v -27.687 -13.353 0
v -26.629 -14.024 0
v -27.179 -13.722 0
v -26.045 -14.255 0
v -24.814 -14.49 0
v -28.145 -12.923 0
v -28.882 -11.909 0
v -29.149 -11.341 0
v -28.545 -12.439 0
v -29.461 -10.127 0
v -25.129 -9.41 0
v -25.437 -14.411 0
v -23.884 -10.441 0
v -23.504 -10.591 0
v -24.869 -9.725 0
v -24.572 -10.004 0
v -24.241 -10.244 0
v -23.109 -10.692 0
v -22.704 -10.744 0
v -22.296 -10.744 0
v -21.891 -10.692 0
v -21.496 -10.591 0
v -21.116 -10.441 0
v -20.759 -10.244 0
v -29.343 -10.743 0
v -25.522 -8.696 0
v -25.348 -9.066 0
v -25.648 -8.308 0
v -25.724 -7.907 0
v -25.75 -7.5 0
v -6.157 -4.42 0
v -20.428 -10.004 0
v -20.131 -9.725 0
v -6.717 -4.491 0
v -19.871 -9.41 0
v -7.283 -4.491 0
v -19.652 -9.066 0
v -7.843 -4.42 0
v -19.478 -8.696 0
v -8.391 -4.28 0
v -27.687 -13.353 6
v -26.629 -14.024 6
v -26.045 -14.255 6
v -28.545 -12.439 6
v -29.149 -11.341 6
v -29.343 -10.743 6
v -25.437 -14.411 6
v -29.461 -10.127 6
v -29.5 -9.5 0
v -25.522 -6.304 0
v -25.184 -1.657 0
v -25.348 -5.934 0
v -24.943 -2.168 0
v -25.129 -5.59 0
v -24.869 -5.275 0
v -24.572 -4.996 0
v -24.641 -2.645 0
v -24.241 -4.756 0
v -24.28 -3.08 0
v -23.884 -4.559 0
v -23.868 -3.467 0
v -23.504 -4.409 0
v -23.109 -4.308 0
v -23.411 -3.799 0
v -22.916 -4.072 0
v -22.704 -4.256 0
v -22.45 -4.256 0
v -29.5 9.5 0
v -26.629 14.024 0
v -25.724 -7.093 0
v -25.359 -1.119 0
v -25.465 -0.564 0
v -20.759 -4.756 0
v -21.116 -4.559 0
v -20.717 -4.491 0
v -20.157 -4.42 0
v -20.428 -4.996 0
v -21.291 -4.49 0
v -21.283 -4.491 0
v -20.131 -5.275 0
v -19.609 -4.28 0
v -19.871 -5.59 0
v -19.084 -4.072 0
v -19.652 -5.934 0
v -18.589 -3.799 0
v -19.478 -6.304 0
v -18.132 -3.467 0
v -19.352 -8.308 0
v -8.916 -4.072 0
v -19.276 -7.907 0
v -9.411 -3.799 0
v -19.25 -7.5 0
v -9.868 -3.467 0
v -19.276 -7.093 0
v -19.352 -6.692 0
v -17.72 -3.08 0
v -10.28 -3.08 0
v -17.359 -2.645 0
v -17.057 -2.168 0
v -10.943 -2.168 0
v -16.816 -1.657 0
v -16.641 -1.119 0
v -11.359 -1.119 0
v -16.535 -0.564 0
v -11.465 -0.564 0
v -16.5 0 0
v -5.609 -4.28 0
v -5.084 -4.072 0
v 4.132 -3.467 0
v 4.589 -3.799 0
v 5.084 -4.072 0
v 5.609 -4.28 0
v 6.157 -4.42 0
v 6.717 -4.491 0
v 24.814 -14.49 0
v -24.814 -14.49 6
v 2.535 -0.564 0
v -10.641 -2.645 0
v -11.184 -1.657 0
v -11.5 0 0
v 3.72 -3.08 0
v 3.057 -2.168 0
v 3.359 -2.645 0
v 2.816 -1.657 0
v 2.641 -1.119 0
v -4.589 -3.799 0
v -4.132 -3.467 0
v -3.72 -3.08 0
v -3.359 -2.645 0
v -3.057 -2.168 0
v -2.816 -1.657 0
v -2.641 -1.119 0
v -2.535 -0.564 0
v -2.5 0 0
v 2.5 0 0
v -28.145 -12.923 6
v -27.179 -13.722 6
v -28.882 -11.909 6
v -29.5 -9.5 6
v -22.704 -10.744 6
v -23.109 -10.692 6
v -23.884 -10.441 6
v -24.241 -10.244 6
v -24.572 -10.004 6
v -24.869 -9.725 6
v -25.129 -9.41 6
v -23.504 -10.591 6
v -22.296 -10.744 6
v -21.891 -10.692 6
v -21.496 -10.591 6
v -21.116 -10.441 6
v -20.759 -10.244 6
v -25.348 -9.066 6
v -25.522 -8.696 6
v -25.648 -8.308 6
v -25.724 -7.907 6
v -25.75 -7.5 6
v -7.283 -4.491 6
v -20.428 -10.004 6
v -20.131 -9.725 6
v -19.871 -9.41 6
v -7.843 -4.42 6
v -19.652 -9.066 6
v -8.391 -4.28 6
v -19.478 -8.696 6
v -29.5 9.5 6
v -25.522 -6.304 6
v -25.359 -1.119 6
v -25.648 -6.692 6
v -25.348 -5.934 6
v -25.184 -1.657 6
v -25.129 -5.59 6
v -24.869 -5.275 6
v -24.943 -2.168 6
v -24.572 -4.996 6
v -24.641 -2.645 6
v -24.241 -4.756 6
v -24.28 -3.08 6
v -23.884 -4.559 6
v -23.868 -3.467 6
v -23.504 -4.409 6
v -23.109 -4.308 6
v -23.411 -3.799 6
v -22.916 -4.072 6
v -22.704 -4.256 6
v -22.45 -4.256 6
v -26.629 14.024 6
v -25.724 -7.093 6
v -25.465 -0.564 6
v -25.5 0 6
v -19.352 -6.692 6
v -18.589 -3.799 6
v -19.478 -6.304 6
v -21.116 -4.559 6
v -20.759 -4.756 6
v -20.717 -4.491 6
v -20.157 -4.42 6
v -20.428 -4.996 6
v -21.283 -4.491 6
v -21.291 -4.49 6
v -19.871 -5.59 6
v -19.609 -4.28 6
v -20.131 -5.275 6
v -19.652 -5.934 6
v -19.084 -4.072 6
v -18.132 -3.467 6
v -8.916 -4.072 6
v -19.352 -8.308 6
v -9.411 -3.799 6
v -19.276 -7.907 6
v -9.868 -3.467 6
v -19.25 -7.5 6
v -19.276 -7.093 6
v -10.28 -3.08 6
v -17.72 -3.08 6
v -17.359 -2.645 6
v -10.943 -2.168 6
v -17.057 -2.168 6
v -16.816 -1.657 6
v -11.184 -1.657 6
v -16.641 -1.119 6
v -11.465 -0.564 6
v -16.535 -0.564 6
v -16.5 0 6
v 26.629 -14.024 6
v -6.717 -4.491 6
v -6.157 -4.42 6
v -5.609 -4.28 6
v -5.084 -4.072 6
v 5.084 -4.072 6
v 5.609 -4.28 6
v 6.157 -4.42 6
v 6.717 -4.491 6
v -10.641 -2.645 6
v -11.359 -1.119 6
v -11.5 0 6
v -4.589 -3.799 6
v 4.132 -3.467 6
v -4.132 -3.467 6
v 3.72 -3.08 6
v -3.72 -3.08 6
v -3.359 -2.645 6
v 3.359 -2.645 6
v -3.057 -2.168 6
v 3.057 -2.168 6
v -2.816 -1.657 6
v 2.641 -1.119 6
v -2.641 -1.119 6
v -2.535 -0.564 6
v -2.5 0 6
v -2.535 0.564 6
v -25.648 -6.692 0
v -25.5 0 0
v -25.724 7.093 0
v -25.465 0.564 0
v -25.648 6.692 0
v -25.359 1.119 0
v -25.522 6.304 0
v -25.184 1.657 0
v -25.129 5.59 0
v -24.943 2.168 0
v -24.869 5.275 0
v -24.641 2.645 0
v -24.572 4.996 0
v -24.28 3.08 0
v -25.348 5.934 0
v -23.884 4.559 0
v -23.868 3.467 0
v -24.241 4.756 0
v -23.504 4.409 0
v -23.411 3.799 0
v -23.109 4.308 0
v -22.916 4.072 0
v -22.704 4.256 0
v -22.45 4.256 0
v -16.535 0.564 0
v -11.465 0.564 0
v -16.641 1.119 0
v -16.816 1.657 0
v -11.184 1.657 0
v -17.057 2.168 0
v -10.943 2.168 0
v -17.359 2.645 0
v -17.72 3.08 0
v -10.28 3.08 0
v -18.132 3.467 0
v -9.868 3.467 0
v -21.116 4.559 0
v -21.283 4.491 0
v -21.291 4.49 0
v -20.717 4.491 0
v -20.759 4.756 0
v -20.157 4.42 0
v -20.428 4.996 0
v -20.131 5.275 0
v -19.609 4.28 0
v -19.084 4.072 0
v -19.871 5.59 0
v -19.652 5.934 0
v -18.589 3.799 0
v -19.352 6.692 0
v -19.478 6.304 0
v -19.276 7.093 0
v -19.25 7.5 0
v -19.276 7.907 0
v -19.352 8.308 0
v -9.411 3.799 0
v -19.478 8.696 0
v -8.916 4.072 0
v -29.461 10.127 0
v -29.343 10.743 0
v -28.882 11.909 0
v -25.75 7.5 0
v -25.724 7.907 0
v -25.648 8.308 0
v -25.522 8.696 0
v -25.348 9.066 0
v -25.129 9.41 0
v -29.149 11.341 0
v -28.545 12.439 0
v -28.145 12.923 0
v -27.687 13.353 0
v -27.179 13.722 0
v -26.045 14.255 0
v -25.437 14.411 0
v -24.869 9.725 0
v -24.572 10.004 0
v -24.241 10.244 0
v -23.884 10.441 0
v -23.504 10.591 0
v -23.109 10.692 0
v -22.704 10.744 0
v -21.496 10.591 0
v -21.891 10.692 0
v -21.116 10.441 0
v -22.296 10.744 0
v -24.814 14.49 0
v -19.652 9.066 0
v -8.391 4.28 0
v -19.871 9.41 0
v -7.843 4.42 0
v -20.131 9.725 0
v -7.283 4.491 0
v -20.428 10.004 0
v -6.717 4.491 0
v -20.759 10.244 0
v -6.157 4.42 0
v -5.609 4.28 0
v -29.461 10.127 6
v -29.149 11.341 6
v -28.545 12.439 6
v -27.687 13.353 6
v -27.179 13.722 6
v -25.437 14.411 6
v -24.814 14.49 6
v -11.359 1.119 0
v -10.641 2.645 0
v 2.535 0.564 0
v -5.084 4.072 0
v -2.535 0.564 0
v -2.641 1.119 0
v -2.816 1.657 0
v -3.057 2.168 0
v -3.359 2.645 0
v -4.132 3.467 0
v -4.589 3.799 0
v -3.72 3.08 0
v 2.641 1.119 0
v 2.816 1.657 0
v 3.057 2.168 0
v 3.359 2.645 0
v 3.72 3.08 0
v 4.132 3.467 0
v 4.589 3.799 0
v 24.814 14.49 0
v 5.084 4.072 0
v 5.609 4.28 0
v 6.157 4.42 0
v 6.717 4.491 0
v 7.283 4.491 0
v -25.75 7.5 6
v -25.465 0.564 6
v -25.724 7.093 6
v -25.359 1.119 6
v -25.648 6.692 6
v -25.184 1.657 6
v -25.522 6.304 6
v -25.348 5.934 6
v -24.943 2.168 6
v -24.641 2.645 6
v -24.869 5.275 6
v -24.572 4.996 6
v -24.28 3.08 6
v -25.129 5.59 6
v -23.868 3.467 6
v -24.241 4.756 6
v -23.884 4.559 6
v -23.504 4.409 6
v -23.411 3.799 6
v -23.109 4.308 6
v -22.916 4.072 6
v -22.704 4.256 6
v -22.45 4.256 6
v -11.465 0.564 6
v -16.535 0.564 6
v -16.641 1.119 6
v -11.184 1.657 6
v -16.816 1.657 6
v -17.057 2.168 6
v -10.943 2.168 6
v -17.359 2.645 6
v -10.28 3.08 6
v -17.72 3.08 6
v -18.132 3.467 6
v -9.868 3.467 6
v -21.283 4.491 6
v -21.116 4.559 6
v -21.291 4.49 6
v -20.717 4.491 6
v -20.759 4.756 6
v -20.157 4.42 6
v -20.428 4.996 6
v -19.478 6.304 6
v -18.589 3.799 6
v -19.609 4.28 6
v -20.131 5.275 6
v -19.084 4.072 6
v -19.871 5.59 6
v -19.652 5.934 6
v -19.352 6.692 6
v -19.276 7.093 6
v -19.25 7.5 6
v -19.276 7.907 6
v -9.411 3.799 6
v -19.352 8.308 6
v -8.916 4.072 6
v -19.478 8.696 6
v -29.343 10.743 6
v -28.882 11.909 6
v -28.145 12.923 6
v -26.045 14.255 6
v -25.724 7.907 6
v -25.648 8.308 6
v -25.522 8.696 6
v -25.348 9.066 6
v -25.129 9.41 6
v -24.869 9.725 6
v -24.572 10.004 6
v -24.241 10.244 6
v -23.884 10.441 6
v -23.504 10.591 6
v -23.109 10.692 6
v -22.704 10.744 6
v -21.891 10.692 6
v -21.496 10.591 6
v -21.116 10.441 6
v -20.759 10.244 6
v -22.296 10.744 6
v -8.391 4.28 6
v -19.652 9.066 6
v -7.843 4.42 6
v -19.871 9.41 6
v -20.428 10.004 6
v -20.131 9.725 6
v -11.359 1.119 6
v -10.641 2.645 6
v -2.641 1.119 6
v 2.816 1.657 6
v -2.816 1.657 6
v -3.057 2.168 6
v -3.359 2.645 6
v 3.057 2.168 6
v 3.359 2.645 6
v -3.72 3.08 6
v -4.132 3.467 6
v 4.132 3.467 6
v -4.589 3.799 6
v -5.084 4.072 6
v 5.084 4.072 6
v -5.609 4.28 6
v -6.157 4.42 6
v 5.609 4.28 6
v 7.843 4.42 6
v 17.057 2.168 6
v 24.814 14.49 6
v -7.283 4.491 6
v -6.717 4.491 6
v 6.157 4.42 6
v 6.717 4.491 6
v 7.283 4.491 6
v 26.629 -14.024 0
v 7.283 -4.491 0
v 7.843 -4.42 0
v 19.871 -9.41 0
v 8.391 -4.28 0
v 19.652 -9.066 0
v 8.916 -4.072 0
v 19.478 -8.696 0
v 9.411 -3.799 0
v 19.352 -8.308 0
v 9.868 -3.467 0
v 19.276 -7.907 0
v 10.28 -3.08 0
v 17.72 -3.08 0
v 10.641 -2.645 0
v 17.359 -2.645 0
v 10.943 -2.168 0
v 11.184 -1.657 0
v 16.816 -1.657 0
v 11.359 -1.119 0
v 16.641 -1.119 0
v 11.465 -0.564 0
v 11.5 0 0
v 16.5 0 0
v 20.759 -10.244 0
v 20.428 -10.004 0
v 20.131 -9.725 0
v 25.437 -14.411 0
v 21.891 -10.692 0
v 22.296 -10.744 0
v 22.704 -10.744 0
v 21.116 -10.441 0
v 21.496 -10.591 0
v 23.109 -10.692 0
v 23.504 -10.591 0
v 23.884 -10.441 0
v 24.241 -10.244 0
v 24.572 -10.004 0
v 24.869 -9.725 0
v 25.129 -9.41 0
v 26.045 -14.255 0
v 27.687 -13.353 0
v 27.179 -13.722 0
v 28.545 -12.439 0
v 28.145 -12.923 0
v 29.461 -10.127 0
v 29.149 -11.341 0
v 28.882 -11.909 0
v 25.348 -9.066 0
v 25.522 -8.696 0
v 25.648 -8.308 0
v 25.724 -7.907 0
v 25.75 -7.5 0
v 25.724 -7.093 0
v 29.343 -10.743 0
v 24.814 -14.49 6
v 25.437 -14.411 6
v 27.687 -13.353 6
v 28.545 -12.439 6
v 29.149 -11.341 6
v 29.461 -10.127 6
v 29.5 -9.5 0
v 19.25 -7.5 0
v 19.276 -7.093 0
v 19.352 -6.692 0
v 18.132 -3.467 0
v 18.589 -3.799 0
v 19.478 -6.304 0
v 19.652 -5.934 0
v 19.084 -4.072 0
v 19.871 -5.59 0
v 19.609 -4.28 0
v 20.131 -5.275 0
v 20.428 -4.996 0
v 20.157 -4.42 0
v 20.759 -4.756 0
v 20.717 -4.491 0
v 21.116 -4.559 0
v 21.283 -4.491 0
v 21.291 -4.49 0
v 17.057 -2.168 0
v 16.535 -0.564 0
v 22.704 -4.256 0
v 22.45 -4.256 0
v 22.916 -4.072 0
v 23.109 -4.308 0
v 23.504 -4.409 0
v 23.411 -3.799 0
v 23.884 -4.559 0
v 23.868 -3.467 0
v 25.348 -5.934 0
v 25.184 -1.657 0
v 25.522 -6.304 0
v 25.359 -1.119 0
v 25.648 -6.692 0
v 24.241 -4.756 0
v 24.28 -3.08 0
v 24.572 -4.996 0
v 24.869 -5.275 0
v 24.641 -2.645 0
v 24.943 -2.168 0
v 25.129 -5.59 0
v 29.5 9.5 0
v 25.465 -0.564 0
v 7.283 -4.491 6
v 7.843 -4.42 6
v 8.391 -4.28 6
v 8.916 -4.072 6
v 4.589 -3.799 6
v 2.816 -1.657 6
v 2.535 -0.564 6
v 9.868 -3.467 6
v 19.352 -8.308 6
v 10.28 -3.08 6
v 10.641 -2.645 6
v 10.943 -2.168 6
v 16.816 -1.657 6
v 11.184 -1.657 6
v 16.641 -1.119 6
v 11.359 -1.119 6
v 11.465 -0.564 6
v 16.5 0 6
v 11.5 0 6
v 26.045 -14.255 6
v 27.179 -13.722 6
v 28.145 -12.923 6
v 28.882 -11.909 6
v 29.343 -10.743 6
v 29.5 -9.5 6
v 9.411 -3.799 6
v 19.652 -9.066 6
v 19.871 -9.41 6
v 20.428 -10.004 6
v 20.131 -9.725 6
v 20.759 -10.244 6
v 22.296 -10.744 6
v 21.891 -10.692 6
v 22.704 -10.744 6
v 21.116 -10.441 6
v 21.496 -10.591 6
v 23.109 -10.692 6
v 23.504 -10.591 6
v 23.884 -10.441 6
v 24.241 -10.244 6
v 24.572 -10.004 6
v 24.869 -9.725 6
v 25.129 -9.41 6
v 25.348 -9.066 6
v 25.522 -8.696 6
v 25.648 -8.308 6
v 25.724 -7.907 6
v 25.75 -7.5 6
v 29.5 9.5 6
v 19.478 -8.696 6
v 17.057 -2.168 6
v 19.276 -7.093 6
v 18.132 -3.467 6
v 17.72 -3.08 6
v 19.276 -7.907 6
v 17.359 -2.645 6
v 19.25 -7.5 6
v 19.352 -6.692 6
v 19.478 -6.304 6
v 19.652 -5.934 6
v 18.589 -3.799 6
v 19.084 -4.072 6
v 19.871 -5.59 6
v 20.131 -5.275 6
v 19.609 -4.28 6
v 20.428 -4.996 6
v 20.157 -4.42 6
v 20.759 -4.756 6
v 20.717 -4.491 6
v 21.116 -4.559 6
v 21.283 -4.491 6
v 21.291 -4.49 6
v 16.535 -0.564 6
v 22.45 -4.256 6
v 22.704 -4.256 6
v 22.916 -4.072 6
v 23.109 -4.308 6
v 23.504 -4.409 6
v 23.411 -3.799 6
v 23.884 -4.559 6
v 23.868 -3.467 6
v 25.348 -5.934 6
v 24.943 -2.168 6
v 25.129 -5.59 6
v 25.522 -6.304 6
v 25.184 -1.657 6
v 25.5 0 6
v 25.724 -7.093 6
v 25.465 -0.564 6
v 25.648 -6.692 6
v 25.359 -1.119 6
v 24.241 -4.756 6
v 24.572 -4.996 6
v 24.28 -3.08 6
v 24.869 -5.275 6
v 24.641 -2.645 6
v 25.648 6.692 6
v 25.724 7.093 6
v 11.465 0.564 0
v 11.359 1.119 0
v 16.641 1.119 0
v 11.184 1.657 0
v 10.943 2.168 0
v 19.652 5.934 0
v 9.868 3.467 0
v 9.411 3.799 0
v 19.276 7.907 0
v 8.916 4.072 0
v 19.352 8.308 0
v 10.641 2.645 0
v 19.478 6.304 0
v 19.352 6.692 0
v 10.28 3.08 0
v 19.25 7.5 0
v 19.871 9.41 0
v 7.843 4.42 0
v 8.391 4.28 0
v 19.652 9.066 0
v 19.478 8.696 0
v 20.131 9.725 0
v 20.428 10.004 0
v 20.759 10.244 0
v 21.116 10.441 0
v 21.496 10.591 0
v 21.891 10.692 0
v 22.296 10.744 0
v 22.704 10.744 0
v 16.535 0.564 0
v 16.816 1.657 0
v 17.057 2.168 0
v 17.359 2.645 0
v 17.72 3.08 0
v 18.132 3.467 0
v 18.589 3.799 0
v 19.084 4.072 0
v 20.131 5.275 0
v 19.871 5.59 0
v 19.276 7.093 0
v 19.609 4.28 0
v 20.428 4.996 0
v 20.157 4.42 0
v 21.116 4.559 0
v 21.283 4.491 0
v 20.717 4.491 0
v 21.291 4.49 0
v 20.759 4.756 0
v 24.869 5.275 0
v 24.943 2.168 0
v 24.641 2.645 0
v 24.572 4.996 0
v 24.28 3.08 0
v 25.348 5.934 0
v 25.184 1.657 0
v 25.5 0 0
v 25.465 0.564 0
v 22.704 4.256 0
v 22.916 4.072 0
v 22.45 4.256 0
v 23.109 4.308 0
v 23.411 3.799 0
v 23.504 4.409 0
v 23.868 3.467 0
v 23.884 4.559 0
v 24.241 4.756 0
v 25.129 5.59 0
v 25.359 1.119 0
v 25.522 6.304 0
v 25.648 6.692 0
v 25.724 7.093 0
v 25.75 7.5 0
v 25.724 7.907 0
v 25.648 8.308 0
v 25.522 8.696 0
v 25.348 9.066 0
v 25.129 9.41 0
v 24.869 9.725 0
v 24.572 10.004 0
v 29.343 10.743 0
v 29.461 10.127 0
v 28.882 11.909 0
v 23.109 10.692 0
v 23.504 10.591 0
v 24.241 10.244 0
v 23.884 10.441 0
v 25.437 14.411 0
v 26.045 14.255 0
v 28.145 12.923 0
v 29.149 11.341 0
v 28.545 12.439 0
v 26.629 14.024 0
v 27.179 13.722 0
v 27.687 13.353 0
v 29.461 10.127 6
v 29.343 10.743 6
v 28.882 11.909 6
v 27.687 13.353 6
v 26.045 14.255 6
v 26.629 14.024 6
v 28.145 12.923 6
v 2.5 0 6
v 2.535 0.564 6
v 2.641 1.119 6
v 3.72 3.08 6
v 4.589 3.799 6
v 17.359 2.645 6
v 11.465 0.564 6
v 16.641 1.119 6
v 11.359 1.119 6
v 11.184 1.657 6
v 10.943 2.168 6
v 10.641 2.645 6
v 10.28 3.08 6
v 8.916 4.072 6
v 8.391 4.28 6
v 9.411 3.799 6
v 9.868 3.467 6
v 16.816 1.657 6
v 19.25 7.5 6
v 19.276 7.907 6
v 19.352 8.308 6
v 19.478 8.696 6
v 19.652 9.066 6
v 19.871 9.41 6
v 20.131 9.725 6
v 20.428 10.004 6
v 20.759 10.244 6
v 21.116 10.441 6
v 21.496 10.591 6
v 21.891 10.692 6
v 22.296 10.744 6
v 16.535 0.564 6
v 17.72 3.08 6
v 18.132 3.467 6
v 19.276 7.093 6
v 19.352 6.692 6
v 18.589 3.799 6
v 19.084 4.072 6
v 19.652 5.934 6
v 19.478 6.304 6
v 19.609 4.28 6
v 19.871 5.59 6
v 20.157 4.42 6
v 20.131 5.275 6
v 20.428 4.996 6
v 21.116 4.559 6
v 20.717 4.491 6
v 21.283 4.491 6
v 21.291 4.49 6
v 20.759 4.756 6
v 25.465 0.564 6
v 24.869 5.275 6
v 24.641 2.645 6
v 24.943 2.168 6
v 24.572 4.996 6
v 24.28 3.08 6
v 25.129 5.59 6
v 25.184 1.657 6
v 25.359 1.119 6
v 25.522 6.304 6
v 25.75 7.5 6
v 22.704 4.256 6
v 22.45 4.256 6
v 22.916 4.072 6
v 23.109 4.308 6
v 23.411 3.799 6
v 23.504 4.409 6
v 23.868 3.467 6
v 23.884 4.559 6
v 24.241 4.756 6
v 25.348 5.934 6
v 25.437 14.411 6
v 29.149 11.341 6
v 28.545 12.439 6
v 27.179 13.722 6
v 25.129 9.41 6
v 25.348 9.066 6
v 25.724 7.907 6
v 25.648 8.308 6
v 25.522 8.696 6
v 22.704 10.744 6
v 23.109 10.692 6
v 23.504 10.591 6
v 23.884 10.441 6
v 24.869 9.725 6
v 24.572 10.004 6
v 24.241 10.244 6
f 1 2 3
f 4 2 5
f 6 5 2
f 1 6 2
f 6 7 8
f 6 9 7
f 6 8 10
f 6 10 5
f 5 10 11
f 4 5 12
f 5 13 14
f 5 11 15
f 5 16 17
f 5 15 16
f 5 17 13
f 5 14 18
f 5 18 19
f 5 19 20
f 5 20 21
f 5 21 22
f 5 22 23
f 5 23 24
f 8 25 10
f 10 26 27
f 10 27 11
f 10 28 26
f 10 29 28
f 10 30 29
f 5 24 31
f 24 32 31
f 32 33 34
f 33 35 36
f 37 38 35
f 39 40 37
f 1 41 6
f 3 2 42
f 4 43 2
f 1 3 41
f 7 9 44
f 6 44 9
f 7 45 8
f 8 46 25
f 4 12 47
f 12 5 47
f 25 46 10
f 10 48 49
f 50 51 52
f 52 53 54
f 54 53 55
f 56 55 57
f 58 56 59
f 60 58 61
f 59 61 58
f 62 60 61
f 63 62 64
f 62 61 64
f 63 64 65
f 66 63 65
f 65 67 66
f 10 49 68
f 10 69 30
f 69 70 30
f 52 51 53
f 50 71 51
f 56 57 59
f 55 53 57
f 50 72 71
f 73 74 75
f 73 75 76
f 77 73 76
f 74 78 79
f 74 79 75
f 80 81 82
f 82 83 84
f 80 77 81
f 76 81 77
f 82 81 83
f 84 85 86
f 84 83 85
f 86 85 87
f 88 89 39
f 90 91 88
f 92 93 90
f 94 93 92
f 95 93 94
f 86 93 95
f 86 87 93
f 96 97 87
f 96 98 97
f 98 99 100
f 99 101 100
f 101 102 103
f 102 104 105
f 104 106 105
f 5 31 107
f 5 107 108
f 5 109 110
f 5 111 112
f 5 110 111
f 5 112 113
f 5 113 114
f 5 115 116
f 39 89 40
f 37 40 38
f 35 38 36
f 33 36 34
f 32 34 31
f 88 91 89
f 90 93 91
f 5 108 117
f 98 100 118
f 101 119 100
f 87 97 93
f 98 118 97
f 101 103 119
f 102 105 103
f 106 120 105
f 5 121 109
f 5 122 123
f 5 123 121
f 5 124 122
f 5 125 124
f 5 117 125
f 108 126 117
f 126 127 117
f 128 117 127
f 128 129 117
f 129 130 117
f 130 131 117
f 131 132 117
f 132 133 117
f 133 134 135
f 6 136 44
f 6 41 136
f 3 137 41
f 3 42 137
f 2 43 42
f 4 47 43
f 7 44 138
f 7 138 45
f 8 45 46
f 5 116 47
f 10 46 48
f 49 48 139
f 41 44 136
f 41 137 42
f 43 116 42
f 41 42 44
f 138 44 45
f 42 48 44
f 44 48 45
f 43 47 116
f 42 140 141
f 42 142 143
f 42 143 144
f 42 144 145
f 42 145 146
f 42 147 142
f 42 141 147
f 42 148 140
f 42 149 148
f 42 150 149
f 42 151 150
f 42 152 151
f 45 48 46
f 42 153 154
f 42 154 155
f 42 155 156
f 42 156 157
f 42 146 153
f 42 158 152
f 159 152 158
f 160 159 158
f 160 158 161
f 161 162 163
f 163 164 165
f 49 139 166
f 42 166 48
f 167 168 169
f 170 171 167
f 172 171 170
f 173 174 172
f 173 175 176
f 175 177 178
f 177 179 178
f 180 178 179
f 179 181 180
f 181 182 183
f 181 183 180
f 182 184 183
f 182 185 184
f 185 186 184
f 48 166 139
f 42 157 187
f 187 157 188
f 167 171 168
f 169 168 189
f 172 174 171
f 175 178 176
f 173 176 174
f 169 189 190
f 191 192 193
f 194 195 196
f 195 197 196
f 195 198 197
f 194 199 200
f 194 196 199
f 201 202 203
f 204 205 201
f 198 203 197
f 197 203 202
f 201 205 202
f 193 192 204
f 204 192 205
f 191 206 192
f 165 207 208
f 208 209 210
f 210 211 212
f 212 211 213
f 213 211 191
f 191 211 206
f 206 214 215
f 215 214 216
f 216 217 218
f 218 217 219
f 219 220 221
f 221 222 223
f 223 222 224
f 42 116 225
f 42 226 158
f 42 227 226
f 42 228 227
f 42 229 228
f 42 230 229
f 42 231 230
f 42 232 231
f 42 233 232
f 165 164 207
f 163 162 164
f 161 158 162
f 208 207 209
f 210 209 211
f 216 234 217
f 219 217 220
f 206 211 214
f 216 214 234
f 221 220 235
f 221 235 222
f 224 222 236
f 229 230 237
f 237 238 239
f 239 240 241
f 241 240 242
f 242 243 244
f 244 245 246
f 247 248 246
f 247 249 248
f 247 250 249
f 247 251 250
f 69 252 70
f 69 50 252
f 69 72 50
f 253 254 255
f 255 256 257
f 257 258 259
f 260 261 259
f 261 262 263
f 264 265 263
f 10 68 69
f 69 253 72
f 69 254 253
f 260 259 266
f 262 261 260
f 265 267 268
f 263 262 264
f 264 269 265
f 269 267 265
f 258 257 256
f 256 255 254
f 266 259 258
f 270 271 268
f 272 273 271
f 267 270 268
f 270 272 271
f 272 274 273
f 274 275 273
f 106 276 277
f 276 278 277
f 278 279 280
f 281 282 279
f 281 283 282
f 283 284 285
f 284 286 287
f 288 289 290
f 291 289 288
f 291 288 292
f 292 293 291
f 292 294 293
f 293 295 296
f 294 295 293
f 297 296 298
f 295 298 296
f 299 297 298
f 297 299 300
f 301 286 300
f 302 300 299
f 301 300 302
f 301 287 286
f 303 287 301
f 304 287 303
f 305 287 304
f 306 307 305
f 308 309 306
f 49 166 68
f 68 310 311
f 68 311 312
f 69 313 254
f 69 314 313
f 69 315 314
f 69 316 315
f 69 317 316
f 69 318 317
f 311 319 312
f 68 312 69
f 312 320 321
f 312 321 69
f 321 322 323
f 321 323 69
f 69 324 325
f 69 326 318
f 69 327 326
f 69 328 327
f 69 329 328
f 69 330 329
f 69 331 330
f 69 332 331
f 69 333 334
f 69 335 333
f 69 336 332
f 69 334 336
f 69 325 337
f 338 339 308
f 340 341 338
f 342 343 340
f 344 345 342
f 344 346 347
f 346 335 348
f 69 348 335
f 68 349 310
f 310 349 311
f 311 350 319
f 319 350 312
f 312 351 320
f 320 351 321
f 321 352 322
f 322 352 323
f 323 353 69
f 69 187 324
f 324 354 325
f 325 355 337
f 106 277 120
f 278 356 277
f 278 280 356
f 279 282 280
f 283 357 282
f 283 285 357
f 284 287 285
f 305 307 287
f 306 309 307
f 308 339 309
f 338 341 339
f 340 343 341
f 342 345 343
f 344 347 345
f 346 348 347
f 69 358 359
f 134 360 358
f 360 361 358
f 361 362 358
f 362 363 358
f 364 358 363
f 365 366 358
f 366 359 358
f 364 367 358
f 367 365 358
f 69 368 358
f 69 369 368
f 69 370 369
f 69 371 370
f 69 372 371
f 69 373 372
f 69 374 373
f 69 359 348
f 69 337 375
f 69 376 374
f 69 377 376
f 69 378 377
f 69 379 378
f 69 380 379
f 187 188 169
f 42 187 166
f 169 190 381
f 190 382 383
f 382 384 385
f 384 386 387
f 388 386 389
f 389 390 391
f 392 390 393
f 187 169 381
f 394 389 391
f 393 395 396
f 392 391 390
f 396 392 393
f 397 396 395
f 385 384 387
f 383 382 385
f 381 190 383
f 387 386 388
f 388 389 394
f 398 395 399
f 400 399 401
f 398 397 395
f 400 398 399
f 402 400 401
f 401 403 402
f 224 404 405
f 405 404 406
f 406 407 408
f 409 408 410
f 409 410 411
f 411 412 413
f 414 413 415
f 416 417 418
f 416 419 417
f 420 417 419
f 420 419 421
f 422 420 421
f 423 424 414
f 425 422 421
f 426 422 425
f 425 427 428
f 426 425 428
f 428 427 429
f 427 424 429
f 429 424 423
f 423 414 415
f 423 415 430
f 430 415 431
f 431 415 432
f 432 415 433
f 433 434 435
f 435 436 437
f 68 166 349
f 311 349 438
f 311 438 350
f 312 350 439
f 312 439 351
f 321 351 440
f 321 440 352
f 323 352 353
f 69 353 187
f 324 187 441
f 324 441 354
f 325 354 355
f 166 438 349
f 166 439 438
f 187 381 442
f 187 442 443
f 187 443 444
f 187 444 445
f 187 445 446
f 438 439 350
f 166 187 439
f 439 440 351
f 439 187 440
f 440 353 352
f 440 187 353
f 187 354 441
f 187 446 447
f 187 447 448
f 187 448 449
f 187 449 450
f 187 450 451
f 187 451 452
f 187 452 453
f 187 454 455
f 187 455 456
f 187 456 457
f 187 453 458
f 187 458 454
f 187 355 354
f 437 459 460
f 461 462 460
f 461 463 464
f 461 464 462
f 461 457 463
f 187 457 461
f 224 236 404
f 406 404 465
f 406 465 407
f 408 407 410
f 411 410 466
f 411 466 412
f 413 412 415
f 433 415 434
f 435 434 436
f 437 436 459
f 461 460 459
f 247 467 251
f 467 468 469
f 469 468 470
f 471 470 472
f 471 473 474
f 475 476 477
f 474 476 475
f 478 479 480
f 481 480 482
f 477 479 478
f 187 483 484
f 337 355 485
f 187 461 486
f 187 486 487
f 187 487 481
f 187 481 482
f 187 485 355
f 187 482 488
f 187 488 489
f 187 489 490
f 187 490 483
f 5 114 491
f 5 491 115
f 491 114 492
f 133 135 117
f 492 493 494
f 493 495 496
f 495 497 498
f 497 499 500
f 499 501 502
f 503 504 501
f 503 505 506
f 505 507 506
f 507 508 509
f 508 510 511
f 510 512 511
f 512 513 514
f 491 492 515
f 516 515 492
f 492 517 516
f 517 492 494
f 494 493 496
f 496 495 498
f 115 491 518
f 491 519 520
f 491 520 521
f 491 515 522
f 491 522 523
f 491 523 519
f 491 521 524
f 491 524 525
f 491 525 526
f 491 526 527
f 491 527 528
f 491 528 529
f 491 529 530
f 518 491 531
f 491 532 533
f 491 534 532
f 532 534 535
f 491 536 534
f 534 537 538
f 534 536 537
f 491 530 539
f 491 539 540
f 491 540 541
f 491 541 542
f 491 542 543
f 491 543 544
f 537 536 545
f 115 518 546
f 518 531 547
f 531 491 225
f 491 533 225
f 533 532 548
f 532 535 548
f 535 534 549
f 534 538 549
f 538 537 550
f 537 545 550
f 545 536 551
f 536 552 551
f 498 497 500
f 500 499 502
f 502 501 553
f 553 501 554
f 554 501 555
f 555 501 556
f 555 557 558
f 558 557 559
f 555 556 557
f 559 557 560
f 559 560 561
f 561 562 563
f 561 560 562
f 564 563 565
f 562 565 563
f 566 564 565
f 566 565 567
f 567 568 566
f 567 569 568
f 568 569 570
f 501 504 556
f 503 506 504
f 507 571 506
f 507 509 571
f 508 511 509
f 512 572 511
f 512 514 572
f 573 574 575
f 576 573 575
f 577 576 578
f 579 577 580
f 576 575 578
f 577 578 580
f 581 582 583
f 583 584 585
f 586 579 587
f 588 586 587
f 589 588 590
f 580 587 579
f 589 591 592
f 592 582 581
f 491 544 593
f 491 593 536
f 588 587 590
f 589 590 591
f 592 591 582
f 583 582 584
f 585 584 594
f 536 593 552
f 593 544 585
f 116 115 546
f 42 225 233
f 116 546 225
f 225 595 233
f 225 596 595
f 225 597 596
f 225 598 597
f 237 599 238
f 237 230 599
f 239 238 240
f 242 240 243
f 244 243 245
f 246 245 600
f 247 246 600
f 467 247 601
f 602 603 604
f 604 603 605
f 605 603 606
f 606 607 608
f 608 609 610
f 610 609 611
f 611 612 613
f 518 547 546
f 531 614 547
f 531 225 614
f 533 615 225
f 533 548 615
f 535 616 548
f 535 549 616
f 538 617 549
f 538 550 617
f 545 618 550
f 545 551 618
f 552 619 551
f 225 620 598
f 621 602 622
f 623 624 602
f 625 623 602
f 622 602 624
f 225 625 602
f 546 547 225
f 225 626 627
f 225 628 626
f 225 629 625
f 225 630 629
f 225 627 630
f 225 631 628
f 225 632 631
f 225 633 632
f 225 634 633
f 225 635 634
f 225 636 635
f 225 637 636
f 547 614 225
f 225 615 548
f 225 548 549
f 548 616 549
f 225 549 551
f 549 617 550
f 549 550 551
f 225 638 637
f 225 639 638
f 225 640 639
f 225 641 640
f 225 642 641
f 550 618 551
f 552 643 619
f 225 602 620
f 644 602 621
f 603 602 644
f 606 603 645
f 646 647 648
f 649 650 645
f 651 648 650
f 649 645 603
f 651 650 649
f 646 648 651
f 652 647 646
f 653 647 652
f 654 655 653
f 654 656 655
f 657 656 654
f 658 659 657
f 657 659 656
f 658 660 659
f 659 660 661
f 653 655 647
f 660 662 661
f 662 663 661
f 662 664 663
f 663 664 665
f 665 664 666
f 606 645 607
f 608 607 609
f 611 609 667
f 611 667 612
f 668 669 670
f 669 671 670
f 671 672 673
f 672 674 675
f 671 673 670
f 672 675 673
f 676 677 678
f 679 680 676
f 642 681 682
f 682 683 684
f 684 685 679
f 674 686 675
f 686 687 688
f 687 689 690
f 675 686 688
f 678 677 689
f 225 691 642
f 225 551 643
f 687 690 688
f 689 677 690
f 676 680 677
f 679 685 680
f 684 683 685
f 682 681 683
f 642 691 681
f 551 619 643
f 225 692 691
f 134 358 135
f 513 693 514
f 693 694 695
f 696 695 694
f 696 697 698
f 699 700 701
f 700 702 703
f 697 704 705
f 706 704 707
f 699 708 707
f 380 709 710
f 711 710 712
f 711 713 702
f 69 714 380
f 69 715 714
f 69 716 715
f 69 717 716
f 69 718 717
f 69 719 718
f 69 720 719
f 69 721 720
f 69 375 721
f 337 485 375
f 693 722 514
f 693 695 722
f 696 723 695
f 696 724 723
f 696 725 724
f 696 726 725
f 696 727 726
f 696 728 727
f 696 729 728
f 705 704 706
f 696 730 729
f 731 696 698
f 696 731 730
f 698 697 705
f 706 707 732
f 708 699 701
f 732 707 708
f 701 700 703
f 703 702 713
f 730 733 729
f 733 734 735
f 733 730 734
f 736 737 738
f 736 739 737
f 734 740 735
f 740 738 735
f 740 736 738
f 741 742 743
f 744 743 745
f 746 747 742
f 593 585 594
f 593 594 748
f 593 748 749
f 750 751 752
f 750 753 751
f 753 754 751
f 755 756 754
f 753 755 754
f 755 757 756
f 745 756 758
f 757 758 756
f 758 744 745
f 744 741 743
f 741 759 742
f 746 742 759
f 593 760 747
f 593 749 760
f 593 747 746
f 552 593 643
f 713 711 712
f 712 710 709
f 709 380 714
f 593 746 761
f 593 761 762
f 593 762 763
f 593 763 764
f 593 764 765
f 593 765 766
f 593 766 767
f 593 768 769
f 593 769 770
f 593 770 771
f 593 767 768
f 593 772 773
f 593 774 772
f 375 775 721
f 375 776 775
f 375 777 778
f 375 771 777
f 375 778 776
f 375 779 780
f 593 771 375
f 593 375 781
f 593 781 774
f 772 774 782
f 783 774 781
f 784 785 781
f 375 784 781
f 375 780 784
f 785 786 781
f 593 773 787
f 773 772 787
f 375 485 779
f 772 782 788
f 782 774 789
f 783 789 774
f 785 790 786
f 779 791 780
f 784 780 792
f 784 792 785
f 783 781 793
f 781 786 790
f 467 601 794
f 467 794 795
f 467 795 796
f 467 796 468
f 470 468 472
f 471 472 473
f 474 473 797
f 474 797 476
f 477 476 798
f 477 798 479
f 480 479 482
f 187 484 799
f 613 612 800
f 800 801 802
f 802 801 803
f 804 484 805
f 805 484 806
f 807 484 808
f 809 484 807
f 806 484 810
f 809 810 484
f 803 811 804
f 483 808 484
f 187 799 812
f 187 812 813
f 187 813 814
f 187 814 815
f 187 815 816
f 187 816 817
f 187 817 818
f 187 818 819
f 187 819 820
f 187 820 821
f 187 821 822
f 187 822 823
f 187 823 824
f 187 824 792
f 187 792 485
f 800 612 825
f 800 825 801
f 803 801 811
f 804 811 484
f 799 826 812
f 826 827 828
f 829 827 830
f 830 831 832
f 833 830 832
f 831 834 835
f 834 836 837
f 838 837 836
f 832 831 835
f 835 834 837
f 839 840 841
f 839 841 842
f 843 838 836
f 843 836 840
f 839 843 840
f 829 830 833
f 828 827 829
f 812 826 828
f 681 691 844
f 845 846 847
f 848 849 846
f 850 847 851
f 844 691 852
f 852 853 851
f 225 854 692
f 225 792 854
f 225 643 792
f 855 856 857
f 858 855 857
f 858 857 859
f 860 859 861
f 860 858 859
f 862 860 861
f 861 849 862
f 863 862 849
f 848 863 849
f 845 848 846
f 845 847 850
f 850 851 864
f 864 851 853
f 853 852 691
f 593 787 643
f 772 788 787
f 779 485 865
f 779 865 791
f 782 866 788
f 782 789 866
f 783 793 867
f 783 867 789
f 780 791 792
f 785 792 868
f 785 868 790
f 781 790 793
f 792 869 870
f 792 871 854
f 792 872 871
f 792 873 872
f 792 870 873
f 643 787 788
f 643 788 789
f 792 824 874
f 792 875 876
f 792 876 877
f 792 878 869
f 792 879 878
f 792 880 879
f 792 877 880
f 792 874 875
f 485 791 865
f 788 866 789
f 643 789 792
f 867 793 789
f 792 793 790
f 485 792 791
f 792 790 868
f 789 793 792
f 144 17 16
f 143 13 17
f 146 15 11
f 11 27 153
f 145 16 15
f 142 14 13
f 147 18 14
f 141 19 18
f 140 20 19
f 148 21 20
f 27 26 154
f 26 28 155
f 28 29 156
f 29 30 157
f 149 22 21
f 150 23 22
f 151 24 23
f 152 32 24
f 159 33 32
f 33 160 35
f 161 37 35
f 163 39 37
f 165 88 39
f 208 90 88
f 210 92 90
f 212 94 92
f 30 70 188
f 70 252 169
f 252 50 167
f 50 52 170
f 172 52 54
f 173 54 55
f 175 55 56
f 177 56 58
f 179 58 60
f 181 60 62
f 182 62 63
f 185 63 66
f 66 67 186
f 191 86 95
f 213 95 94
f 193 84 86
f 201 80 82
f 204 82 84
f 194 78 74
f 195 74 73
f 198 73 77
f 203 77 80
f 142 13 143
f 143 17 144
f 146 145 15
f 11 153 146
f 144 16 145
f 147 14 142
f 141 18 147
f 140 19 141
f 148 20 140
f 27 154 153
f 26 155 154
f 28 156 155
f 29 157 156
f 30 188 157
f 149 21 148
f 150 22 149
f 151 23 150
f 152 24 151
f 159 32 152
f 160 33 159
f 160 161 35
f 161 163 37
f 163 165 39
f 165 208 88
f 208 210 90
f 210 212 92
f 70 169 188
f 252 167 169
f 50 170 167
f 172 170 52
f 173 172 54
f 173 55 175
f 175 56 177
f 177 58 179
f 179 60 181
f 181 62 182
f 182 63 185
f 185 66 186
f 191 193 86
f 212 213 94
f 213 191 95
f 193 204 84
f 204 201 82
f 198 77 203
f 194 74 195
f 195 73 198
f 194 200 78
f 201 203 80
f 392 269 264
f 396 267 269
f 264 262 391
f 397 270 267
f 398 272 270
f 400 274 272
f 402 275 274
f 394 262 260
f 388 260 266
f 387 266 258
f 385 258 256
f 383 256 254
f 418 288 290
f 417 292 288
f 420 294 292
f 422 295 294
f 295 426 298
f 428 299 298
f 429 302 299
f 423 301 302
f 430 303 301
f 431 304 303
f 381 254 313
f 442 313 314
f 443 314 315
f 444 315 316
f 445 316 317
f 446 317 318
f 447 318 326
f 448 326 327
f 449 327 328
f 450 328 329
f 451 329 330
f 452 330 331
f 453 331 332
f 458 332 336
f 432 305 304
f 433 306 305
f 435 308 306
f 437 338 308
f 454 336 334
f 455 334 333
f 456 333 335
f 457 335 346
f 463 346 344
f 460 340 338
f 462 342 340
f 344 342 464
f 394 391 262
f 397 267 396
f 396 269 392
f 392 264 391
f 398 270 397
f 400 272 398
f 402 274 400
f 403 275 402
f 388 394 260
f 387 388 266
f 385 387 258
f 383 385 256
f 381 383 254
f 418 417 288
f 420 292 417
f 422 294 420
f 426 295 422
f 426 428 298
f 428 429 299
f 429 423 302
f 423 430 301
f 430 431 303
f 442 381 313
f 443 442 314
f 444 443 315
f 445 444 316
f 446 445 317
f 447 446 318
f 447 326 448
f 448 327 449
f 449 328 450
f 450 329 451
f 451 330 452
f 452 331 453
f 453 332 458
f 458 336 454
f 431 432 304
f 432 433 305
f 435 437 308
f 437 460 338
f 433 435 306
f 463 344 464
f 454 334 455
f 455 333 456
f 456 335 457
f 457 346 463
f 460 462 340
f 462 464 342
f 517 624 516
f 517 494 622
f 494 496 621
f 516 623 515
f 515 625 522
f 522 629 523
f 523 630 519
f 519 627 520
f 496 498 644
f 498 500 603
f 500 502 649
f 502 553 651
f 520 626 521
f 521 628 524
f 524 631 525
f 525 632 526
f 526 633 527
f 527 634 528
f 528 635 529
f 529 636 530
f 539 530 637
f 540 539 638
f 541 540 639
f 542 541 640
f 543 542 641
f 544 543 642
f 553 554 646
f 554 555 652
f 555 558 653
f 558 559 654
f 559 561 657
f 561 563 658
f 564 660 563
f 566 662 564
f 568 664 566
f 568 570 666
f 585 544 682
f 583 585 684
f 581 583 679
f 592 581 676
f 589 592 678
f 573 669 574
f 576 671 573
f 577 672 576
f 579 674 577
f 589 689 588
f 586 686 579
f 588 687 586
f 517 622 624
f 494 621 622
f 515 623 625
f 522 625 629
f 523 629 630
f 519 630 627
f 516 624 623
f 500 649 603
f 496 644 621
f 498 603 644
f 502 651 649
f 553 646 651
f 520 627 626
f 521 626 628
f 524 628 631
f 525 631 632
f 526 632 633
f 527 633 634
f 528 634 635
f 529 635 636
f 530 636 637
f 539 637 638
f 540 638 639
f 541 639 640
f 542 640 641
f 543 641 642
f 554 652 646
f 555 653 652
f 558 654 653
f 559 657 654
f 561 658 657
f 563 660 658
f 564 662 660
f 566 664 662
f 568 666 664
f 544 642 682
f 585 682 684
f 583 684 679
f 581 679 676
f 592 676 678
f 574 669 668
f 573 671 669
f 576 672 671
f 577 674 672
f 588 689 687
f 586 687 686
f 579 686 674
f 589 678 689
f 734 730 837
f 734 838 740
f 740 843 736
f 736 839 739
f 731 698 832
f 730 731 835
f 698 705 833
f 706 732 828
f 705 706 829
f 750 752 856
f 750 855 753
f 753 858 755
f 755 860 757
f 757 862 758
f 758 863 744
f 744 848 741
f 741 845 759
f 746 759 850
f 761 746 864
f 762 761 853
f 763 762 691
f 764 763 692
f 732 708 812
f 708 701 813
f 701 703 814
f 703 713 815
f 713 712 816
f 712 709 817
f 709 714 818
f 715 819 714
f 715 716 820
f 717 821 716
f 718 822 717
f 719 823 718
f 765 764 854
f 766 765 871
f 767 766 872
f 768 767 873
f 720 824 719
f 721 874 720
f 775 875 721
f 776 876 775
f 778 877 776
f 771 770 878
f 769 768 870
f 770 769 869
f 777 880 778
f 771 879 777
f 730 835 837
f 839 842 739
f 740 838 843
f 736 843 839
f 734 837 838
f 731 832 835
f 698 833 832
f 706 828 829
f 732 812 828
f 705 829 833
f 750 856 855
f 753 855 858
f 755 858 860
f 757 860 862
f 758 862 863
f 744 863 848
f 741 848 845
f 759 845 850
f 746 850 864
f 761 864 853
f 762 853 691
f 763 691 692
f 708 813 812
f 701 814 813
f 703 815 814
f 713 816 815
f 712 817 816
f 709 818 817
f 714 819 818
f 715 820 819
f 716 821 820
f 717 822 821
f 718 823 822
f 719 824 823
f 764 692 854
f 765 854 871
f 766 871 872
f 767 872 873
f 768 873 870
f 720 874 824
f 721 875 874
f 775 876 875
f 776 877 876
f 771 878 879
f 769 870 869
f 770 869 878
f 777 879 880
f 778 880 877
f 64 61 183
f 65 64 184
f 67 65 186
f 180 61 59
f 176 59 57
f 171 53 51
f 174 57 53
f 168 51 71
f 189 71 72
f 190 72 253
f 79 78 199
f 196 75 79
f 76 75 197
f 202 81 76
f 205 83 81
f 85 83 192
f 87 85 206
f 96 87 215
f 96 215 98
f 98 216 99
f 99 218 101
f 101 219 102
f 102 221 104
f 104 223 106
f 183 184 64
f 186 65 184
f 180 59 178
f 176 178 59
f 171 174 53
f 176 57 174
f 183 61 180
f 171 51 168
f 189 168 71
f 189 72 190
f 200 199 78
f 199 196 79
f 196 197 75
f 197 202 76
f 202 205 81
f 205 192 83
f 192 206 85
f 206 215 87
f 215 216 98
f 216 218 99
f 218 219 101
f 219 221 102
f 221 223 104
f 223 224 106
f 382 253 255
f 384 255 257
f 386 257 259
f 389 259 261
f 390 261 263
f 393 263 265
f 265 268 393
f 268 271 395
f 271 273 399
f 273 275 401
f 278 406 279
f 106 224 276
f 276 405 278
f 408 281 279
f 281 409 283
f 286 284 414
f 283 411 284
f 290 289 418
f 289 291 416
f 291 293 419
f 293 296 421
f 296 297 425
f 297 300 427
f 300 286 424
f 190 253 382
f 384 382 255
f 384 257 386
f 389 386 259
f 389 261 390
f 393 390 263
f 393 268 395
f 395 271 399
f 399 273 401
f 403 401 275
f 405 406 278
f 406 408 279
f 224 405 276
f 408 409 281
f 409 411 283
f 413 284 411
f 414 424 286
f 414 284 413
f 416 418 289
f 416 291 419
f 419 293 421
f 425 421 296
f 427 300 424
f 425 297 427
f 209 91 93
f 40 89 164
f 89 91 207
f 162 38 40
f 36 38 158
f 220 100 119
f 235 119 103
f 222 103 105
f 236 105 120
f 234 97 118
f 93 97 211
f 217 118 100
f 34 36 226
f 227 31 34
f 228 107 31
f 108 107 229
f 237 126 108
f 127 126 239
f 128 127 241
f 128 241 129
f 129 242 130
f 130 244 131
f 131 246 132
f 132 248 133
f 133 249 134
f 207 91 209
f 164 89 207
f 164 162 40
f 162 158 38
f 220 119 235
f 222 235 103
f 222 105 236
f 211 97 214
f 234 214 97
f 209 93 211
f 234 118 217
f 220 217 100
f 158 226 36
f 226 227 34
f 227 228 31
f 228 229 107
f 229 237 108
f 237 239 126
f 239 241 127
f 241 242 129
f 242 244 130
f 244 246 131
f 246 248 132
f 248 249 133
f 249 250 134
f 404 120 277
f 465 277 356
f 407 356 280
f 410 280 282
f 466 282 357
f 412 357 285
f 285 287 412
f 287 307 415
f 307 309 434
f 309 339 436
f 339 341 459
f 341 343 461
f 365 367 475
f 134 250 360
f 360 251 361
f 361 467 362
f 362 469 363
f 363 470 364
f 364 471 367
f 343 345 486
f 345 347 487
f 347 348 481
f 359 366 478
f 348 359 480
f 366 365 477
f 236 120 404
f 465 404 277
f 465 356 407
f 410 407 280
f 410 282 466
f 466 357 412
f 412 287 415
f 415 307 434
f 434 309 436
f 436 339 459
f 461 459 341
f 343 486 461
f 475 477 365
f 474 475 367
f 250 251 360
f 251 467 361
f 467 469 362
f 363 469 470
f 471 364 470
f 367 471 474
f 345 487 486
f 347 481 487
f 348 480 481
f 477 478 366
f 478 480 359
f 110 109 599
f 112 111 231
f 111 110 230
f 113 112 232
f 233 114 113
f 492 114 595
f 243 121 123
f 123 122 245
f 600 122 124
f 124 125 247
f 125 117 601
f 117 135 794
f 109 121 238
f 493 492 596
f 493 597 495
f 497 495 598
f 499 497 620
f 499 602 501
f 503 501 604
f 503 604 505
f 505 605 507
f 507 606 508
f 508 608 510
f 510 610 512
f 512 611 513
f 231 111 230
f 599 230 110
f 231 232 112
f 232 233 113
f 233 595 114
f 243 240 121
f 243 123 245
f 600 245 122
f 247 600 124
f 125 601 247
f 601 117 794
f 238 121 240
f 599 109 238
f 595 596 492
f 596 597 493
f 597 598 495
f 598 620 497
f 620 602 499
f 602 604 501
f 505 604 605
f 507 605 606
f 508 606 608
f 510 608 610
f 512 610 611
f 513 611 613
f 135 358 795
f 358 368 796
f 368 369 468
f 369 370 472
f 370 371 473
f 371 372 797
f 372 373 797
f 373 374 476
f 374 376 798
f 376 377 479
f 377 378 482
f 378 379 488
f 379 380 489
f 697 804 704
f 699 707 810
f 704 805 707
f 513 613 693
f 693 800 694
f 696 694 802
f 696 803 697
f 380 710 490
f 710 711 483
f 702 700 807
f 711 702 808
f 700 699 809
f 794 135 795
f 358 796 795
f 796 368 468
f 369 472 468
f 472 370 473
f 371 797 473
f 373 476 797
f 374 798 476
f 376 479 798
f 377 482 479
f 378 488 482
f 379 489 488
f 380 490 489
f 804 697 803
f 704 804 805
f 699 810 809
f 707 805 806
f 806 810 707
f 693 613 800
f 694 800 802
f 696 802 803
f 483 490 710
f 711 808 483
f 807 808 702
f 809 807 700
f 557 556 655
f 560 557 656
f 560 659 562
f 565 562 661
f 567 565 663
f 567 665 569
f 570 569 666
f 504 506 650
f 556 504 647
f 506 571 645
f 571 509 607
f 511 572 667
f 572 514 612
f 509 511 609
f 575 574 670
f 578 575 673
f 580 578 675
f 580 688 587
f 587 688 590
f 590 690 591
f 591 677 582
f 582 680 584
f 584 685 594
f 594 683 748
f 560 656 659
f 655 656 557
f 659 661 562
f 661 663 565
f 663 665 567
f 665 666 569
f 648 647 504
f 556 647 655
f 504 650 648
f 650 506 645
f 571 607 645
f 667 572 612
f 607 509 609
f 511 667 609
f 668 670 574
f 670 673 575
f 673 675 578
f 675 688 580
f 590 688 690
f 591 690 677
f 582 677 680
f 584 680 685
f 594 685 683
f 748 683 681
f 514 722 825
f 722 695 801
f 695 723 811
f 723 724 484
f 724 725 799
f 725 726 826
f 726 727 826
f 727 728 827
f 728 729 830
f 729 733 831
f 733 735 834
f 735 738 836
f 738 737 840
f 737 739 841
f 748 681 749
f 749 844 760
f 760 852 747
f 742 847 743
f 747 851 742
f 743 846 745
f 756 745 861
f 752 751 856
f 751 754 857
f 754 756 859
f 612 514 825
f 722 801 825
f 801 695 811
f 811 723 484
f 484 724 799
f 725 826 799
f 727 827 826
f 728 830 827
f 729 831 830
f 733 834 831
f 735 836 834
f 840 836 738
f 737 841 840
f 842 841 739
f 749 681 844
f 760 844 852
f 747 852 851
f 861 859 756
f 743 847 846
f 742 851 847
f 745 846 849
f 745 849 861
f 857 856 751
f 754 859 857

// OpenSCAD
$fn = 50;

difference() {
	union() {
		hull() {
			translate(v = [-24.5, 9.5, 0]) {
				cylinder(h = 6, r = 5);
			}
			translate(v = [24.5, 9.5, 0]) {
				cylinder(h = 6, r = 5);
			}
			translate(v = [-24.5, -9.5, 0]) {
				cylinder(h = 6, r = 5);
			}
			translate(v = [24.5, -9.5, 0]) {
				cylinder(h = 6, r = 5);
			}
		}
	}
	union() {
		translate(v = [-22.5, -7.5, -100.0]) {
			cylinder(h = 200, r = 3.25);
		}
		translate(v = [-22.5, 7.5, -100.0]) {
			cylinder(h = 200, r = 3.25);
		}
		translate(v = [22.5, -7.5, -100.0]) {
			cylinder(h = 200, r = 3.25);
		}
		translate(v = [22.5, 7.5, -100.0]) {
			cylinder(h = 200, r = 3.25);
		}
		translate(v = [-22.5, -7.5, -100.0]) {
			cylinder(h = 200, r = 1.8);
		}
		translate(v = [-22.5, 7.5, -100.0]) {
			cylinder(h = 200, r = 1.8);
		}
		translate(v = [22.5, -7.5, -100.0]) {
			cylinder(h = 200, r = 1.8);
		}
		translate(v = [22.5, 7.5, -100.0]) {
			cylinder(h = 200, r = 1.8);
		}
		translate(v = [-21.0, 0, 0.0]) {
			cylinder(h = 6, r = 4.5);
		}
		translate(v = [-7.0, 0, 0.0]) {
			cylinder(h = 6, r = 4.5);
		}
		translate(v = [7.0, 0, 0.0]) {
			cylinder(h = 6, r = 4.5);
		}
		translate(v = [21.0, 0, 0.0]) {
			cylinder(h = 6, r = 4.5);
		}
	}
}
